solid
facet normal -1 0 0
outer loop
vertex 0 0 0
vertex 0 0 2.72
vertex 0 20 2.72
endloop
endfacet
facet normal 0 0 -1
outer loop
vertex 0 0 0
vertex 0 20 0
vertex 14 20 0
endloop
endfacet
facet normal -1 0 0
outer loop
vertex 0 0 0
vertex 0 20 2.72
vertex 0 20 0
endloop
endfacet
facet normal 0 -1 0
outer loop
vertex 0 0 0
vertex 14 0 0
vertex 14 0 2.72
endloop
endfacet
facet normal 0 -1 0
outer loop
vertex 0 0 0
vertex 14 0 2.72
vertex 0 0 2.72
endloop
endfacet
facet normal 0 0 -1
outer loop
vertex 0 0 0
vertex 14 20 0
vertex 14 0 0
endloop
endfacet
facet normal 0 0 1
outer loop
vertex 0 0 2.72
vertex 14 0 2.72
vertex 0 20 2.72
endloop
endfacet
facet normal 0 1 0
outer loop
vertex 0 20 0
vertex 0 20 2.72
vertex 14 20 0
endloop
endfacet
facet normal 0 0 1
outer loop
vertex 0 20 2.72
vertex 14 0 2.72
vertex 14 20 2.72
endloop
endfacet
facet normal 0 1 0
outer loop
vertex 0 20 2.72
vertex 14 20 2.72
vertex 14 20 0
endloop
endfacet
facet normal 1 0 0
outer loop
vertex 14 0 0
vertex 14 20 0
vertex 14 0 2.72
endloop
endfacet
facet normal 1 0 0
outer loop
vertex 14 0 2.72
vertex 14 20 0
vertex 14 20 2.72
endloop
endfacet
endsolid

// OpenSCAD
/* Warning, this is a very basic generator with a lot of approximation 
input data : [MQFP, KGC, 14x20x2.72mm, 100, , A, C04-25364A]
generated by com.zoubworld.electronics.cad.model3d.Basic
Date : Sun Feb 15 10:50:49 CET 2026
*/

//body
color("black")
translate([0,0,0])
cube([14.0,20.0,2.72], center=false);
